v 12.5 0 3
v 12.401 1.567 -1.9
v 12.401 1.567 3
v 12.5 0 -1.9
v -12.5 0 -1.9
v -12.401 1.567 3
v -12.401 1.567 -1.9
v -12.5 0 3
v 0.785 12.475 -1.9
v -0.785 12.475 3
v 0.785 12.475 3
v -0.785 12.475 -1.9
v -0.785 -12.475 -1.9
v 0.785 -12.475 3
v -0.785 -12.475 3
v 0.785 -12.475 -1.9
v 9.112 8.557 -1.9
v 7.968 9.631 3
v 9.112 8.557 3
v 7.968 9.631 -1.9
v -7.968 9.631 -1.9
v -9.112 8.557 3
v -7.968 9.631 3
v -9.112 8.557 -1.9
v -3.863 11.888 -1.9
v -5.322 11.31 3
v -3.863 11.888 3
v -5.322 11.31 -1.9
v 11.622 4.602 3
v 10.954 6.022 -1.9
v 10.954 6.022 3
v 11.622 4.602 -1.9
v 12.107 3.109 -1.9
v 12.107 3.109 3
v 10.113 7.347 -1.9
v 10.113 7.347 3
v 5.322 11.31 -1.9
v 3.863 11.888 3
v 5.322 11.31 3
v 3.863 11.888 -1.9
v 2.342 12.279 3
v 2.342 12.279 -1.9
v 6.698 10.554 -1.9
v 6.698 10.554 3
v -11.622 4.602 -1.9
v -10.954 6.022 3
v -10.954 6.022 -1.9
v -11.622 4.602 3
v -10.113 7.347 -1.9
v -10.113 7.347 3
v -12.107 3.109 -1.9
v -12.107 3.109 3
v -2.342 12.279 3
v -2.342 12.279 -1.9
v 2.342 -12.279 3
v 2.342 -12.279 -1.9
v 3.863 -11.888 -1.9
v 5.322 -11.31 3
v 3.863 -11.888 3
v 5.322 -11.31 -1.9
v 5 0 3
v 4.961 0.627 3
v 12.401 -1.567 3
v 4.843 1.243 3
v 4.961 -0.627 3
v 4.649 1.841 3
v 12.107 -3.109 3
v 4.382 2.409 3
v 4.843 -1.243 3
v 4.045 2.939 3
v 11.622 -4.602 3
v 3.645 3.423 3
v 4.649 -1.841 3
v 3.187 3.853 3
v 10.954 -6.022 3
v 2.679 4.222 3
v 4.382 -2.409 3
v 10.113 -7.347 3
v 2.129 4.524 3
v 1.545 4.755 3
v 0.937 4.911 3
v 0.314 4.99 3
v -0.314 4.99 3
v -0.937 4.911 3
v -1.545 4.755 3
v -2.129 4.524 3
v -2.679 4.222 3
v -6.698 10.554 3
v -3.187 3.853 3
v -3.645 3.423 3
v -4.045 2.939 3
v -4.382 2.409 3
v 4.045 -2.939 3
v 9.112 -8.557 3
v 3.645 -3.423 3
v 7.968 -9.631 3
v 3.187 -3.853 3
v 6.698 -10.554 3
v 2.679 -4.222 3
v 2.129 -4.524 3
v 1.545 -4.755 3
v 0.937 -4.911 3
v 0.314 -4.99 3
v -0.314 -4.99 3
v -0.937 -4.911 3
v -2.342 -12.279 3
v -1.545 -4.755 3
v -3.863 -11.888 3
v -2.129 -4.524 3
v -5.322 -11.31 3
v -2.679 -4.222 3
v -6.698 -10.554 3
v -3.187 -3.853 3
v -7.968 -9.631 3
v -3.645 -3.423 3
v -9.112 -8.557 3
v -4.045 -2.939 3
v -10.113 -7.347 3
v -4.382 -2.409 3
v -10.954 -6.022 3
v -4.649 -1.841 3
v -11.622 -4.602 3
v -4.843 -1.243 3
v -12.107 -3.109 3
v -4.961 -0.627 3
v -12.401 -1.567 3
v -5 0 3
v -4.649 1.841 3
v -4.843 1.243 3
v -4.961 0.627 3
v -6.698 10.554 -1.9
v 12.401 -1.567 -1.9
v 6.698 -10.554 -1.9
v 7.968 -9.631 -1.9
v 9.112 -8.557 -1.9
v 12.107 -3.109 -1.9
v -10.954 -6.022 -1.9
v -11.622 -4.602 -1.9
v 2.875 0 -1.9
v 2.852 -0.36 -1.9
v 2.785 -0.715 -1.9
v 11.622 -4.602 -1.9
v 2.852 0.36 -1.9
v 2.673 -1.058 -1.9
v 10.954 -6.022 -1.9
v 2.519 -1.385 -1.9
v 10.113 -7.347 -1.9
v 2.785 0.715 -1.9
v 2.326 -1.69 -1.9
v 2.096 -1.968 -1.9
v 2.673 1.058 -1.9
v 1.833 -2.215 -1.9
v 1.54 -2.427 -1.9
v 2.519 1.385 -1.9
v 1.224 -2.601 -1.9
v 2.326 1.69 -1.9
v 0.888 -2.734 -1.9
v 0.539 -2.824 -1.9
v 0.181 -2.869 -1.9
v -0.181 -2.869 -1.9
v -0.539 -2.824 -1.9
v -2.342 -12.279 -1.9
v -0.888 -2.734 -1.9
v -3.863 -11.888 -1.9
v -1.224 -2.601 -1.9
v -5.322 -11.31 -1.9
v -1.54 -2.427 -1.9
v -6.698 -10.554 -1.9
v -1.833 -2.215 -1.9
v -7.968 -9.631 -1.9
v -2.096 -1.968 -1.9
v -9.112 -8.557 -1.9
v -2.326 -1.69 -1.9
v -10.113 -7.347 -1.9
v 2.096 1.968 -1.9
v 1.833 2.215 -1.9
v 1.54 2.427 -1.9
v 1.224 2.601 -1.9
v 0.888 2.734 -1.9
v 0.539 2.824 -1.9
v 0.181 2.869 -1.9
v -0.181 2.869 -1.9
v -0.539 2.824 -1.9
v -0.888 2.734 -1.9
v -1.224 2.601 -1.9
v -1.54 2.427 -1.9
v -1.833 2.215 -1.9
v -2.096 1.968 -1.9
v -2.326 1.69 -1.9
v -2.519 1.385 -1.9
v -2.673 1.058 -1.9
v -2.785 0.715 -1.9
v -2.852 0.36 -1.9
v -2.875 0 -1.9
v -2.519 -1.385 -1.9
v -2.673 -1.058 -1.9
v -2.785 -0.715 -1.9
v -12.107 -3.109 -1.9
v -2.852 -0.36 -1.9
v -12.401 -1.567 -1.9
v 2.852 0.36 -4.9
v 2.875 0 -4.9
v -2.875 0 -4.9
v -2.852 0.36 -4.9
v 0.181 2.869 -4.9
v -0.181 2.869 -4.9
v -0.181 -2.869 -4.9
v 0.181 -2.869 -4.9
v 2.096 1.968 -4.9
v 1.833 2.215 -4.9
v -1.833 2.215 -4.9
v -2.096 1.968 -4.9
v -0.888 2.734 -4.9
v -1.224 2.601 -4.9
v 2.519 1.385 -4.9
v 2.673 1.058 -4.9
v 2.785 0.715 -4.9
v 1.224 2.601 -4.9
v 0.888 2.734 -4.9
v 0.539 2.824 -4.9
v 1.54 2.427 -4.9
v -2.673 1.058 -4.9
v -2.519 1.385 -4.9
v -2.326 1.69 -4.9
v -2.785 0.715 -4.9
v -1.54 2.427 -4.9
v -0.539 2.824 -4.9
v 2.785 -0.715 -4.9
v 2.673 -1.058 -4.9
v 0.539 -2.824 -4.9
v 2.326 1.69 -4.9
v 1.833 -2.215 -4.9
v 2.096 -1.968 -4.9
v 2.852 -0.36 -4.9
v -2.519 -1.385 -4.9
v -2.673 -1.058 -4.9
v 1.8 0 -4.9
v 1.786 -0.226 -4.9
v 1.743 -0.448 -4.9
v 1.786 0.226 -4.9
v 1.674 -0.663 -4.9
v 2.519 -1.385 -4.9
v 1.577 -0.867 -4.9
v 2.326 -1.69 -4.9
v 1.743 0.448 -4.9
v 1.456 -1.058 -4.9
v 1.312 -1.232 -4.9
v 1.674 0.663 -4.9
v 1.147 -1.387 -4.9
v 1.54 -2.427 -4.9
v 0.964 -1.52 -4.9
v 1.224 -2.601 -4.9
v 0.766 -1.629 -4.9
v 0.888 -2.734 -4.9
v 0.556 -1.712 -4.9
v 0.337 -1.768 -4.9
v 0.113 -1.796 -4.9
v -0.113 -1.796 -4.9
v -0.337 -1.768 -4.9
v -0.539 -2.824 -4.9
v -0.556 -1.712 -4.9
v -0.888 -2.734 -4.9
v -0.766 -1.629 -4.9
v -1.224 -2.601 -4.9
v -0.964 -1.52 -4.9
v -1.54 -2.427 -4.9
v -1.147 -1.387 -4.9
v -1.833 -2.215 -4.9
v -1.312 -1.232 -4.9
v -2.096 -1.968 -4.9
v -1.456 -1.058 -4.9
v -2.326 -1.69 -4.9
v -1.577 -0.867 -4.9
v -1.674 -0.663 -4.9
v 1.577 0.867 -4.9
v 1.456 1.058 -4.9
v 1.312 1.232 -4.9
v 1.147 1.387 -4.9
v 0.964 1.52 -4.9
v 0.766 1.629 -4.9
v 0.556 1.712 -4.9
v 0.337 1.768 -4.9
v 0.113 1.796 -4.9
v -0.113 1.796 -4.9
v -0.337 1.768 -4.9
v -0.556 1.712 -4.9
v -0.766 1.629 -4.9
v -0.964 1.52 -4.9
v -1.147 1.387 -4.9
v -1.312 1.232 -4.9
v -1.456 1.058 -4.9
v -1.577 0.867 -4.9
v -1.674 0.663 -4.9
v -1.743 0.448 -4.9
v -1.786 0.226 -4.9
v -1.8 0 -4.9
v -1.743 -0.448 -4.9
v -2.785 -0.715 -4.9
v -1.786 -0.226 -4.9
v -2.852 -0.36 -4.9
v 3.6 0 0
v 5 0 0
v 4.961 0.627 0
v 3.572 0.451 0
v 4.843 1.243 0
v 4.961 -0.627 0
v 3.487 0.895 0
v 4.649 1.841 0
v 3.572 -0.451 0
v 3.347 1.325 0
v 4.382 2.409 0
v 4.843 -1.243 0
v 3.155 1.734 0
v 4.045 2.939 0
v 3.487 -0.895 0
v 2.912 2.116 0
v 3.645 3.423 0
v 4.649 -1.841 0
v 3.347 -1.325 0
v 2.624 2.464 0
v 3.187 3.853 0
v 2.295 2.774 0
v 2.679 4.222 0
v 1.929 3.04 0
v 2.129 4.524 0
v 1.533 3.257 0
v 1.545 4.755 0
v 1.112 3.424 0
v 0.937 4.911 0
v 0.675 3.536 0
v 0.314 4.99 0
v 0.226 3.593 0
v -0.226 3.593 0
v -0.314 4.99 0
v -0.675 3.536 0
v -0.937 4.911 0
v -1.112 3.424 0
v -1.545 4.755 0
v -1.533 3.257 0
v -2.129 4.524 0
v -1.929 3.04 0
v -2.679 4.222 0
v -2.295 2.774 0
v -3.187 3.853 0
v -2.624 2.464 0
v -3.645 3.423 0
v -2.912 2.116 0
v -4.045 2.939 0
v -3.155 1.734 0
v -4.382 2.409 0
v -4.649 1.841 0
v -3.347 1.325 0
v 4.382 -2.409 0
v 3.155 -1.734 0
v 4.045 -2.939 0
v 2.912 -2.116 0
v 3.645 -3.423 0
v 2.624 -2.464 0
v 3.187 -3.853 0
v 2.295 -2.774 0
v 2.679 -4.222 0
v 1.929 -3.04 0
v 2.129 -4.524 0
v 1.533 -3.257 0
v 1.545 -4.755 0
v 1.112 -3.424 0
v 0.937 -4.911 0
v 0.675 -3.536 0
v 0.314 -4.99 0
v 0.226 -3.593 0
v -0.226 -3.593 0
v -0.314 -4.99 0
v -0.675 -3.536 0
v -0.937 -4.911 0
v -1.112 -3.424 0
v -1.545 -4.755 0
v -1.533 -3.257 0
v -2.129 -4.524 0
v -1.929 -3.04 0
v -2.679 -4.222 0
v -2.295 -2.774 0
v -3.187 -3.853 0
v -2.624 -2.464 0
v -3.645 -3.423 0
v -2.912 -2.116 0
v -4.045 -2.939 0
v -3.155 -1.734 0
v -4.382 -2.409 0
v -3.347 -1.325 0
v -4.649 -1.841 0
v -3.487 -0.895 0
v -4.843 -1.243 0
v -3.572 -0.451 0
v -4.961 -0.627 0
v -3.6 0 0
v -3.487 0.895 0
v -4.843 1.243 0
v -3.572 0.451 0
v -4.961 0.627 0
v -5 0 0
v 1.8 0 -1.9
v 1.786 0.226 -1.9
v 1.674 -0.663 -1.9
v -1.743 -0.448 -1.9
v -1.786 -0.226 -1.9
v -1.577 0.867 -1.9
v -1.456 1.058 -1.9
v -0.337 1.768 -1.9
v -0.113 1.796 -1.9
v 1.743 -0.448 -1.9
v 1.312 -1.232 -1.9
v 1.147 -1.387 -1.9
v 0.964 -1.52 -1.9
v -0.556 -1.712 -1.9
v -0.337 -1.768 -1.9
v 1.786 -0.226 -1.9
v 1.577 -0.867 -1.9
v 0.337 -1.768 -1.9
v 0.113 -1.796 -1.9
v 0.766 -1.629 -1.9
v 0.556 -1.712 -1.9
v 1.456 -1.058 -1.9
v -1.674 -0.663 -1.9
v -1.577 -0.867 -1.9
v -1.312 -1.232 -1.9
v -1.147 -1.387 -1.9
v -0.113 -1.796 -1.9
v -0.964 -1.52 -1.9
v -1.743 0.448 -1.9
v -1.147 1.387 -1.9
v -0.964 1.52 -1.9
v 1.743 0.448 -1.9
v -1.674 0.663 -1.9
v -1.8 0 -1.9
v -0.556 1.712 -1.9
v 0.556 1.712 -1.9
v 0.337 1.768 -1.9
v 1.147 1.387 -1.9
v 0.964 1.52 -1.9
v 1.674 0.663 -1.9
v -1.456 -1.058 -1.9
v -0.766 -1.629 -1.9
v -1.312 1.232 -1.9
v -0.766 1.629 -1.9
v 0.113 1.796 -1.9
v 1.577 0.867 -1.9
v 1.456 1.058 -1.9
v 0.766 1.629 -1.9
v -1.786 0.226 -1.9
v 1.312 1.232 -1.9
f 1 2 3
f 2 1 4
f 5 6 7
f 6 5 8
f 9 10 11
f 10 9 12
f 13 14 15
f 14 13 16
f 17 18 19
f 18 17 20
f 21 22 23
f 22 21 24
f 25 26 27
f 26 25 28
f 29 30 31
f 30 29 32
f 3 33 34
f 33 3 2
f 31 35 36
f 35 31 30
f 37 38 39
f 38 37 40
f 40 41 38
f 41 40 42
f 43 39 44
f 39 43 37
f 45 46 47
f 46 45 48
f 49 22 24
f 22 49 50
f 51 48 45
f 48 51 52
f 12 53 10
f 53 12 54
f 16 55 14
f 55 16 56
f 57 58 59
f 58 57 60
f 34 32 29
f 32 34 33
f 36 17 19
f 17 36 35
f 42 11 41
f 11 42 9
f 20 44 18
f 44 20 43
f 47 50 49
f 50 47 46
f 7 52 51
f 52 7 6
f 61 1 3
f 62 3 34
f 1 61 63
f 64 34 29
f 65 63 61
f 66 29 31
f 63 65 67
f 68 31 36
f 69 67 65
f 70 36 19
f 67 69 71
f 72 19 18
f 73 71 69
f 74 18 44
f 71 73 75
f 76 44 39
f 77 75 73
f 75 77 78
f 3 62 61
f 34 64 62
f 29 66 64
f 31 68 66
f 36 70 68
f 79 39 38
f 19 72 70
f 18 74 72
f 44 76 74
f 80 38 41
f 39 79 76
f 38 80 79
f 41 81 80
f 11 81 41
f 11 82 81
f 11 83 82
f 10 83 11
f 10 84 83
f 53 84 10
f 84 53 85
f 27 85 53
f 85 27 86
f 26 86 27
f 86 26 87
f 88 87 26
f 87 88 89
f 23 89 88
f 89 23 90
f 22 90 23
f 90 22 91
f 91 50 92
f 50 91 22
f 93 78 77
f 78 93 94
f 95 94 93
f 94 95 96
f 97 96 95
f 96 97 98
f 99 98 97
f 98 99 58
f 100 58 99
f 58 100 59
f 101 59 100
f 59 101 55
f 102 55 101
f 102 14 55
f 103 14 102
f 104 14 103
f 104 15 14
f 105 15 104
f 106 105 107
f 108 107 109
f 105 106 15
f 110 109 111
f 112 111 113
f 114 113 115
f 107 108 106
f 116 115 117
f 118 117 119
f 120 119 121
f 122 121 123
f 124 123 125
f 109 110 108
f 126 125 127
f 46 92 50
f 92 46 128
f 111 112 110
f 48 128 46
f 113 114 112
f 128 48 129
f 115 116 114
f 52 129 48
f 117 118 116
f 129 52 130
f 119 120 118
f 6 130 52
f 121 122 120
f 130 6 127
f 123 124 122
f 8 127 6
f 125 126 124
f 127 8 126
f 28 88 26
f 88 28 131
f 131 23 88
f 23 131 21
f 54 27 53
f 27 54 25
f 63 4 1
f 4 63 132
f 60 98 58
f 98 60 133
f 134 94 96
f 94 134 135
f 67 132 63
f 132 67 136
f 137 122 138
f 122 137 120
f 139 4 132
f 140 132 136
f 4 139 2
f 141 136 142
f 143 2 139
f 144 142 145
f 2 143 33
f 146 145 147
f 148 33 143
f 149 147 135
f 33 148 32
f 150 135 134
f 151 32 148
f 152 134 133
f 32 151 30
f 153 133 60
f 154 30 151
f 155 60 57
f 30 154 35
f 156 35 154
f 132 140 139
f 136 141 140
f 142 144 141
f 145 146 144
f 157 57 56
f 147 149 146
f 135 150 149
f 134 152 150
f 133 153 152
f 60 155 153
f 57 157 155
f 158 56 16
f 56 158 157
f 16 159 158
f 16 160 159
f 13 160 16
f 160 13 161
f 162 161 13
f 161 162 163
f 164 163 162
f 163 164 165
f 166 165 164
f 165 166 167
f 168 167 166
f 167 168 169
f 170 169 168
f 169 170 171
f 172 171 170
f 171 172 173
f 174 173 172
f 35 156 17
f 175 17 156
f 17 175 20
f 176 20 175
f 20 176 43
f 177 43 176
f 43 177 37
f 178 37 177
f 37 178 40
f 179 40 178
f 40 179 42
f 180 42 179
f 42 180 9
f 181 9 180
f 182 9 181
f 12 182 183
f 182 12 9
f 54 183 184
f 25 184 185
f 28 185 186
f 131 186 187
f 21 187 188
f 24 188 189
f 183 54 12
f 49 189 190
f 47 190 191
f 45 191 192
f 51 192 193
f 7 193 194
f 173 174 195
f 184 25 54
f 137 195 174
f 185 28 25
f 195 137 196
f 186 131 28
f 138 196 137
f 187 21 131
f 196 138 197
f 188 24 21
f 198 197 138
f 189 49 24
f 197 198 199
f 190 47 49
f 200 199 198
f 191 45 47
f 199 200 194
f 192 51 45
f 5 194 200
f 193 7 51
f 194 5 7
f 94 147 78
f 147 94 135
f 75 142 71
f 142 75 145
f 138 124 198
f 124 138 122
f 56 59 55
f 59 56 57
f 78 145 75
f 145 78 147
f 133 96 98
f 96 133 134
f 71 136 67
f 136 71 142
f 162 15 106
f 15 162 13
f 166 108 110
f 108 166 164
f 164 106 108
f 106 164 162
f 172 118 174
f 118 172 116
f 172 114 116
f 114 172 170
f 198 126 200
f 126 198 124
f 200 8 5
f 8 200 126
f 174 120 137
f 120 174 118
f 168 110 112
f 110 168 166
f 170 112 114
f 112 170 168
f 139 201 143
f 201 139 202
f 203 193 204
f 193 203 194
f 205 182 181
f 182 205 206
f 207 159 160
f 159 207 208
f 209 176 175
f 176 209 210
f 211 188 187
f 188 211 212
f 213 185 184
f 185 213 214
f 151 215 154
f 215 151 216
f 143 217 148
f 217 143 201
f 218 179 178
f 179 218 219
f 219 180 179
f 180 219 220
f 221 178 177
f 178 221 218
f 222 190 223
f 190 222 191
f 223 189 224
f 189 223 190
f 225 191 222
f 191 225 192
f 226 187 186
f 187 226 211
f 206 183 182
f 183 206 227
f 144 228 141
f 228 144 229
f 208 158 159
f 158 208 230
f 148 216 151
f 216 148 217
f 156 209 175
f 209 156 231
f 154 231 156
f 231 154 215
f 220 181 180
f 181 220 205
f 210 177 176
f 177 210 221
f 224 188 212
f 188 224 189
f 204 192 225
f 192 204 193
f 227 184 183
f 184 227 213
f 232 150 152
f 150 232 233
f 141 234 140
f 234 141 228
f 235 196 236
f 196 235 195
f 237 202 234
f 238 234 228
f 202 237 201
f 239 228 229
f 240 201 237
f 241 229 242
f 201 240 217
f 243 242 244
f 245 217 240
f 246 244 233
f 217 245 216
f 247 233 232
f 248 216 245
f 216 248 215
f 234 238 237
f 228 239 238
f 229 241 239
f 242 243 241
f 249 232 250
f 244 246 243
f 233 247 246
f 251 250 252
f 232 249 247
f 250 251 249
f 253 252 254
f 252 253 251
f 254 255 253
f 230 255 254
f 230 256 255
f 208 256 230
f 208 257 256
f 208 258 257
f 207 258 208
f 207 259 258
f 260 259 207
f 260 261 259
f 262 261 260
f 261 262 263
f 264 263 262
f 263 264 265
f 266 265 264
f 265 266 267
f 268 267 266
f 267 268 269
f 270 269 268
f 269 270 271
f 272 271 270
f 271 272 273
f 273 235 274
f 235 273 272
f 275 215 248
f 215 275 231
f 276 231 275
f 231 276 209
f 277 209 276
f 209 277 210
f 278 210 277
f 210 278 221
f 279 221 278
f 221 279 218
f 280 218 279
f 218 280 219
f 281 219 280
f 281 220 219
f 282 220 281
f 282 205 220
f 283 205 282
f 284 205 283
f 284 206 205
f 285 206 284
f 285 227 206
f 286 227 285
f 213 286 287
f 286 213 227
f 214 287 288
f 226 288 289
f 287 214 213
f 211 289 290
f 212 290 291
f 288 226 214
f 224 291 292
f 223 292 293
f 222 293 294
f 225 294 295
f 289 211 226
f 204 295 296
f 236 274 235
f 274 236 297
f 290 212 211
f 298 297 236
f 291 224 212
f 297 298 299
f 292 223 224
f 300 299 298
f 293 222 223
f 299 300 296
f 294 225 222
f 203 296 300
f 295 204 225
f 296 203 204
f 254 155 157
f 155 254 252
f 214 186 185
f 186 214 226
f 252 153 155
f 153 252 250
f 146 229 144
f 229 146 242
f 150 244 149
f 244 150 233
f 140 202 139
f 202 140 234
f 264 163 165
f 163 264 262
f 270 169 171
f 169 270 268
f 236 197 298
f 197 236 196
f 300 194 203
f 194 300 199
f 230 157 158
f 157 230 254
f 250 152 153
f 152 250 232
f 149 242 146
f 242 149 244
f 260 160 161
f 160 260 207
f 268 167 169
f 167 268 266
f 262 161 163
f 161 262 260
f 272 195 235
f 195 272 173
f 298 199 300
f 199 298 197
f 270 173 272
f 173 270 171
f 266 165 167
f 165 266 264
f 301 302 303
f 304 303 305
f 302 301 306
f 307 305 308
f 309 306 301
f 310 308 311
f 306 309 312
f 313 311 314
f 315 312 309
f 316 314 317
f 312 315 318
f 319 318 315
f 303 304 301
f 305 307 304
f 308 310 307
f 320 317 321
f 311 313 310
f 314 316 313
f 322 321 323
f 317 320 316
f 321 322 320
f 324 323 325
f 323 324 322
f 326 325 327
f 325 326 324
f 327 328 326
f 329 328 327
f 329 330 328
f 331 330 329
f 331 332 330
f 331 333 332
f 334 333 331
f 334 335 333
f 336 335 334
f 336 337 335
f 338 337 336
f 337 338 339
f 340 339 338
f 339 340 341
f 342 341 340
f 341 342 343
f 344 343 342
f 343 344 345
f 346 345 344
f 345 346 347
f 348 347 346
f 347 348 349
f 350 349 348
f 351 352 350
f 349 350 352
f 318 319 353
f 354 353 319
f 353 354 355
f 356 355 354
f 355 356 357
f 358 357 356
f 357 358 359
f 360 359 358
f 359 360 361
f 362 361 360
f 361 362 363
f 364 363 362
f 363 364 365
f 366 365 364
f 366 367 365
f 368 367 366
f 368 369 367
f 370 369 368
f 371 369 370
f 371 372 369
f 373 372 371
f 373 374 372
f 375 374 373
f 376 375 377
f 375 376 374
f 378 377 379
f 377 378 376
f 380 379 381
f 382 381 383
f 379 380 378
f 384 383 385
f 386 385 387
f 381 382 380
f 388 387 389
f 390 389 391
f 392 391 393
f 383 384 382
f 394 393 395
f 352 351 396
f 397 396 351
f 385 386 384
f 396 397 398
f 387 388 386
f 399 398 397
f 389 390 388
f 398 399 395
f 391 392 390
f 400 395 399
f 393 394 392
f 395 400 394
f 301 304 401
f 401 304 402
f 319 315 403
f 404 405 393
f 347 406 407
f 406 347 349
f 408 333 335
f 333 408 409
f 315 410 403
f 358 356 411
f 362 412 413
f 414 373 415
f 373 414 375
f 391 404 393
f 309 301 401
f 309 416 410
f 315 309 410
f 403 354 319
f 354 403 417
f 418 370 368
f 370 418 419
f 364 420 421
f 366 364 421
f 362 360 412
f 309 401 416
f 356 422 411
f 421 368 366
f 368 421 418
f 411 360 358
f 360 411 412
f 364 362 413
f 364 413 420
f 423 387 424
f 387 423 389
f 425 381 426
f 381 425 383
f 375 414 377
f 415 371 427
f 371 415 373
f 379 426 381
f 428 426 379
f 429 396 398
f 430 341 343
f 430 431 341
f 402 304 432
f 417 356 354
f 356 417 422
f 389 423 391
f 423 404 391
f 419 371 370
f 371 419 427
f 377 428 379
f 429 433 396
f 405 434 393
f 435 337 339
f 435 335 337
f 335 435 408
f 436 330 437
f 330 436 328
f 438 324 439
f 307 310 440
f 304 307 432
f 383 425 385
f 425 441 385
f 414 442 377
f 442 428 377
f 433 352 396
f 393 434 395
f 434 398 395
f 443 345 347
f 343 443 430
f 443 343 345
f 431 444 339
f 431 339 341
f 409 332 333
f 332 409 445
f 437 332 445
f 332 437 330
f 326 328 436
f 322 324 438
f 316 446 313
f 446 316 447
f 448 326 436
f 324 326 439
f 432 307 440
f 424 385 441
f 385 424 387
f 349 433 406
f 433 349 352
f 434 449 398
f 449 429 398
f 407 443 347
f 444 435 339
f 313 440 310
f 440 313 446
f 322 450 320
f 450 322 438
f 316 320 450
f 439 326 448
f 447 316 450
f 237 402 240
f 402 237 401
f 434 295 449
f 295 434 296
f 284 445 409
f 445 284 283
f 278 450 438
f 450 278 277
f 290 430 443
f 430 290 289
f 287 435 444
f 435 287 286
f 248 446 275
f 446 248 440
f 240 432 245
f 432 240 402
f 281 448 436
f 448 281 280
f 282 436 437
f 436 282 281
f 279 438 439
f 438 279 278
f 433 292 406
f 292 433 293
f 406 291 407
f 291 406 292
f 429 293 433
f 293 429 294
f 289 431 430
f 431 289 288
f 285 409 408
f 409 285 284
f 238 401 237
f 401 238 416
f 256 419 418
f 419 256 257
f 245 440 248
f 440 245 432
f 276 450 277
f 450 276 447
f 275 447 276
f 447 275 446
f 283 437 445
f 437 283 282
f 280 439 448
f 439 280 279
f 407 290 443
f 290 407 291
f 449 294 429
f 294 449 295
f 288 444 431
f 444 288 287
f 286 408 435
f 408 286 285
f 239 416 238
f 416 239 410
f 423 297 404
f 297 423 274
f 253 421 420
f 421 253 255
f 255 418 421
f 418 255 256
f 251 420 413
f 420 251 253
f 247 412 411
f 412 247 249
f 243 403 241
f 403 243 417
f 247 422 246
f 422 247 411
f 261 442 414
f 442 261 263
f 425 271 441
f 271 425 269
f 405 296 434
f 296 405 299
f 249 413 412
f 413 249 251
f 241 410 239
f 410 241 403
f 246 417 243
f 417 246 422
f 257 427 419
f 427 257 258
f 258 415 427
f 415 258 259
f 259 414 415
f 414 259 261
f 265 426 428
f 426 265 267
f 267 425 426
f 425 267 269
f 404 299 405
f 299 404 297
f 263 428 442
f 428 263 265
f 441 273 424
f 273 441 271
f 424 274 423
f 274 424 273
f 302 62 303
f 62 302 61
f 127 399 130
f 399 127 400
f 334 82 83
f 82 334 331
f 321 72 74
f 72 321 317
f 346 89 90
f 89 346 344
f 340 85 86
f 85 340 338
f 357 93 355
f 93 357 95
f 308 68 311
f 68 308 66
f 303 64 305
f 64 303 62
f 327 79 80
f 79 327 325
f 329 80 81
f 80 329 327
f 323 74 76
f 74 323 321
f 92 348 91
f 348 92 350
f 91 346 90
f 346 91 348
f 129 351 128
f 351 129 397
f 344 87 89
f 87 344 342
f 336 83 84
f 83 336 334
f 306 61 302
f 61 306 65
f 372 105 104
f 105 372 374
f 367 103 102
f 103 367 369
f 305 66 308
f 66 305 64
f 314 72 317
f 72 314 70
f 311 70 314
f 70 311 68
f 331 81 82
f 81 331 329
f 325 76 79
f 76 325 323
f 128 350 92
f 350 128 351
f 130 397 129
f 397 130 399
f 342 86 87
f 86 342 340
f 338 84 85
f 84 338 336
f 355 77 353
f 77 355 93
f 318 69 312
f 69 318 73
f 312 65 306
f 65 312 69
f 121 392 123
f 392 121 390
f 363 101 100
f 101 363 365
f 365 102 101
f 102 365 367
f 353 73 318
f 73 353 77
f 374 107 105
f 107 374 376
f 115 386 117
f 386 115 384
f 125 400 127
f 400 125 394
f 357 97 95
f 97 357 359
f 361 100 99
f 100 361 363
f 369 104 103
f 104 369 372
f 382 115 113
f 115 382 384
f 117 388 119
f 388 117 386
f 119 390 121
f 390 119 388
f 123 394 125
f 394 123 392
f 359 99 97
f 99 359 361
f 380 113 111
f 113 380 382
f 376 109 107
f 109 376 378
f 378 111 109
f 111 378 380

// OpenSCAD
$fn = 50;

difference() {
	union() {
		translate(v = [0, 0, -1.9000000000000004]) {
			cylinder(h = 4.9, r = 12.5);
		}
		#translate(v = [0, 0, -4.9]) {
			cylinder(h = 4.9, r = 2.875);
		}
	}
	union() {
		translate(v = [0, 0, 0]) {
			rotate(a = [0, 0, 0]) {
				difference() {
					union() {
						translate(v = [0, 0, -4.9]) {
							cylinder(h = 4.9, r = 1.5);
						}
						translate(v = [0, 0, -1.9]) {
							cylinder(h = 1.9, r1 = 1.8, r2 = 3.6);
						}
						translate(v = [0, 0, -4.9]) {
							cylinder(h = 4.9, r = 1.8);
						}
						translate(v = [0, 0, -4.9]) {
							cylinder(h = 4.9, r = 1.5);
						}
					}
					union();
				}
			}
		}
		#cylinder(h = 3, r = 5.0);
	}
}
